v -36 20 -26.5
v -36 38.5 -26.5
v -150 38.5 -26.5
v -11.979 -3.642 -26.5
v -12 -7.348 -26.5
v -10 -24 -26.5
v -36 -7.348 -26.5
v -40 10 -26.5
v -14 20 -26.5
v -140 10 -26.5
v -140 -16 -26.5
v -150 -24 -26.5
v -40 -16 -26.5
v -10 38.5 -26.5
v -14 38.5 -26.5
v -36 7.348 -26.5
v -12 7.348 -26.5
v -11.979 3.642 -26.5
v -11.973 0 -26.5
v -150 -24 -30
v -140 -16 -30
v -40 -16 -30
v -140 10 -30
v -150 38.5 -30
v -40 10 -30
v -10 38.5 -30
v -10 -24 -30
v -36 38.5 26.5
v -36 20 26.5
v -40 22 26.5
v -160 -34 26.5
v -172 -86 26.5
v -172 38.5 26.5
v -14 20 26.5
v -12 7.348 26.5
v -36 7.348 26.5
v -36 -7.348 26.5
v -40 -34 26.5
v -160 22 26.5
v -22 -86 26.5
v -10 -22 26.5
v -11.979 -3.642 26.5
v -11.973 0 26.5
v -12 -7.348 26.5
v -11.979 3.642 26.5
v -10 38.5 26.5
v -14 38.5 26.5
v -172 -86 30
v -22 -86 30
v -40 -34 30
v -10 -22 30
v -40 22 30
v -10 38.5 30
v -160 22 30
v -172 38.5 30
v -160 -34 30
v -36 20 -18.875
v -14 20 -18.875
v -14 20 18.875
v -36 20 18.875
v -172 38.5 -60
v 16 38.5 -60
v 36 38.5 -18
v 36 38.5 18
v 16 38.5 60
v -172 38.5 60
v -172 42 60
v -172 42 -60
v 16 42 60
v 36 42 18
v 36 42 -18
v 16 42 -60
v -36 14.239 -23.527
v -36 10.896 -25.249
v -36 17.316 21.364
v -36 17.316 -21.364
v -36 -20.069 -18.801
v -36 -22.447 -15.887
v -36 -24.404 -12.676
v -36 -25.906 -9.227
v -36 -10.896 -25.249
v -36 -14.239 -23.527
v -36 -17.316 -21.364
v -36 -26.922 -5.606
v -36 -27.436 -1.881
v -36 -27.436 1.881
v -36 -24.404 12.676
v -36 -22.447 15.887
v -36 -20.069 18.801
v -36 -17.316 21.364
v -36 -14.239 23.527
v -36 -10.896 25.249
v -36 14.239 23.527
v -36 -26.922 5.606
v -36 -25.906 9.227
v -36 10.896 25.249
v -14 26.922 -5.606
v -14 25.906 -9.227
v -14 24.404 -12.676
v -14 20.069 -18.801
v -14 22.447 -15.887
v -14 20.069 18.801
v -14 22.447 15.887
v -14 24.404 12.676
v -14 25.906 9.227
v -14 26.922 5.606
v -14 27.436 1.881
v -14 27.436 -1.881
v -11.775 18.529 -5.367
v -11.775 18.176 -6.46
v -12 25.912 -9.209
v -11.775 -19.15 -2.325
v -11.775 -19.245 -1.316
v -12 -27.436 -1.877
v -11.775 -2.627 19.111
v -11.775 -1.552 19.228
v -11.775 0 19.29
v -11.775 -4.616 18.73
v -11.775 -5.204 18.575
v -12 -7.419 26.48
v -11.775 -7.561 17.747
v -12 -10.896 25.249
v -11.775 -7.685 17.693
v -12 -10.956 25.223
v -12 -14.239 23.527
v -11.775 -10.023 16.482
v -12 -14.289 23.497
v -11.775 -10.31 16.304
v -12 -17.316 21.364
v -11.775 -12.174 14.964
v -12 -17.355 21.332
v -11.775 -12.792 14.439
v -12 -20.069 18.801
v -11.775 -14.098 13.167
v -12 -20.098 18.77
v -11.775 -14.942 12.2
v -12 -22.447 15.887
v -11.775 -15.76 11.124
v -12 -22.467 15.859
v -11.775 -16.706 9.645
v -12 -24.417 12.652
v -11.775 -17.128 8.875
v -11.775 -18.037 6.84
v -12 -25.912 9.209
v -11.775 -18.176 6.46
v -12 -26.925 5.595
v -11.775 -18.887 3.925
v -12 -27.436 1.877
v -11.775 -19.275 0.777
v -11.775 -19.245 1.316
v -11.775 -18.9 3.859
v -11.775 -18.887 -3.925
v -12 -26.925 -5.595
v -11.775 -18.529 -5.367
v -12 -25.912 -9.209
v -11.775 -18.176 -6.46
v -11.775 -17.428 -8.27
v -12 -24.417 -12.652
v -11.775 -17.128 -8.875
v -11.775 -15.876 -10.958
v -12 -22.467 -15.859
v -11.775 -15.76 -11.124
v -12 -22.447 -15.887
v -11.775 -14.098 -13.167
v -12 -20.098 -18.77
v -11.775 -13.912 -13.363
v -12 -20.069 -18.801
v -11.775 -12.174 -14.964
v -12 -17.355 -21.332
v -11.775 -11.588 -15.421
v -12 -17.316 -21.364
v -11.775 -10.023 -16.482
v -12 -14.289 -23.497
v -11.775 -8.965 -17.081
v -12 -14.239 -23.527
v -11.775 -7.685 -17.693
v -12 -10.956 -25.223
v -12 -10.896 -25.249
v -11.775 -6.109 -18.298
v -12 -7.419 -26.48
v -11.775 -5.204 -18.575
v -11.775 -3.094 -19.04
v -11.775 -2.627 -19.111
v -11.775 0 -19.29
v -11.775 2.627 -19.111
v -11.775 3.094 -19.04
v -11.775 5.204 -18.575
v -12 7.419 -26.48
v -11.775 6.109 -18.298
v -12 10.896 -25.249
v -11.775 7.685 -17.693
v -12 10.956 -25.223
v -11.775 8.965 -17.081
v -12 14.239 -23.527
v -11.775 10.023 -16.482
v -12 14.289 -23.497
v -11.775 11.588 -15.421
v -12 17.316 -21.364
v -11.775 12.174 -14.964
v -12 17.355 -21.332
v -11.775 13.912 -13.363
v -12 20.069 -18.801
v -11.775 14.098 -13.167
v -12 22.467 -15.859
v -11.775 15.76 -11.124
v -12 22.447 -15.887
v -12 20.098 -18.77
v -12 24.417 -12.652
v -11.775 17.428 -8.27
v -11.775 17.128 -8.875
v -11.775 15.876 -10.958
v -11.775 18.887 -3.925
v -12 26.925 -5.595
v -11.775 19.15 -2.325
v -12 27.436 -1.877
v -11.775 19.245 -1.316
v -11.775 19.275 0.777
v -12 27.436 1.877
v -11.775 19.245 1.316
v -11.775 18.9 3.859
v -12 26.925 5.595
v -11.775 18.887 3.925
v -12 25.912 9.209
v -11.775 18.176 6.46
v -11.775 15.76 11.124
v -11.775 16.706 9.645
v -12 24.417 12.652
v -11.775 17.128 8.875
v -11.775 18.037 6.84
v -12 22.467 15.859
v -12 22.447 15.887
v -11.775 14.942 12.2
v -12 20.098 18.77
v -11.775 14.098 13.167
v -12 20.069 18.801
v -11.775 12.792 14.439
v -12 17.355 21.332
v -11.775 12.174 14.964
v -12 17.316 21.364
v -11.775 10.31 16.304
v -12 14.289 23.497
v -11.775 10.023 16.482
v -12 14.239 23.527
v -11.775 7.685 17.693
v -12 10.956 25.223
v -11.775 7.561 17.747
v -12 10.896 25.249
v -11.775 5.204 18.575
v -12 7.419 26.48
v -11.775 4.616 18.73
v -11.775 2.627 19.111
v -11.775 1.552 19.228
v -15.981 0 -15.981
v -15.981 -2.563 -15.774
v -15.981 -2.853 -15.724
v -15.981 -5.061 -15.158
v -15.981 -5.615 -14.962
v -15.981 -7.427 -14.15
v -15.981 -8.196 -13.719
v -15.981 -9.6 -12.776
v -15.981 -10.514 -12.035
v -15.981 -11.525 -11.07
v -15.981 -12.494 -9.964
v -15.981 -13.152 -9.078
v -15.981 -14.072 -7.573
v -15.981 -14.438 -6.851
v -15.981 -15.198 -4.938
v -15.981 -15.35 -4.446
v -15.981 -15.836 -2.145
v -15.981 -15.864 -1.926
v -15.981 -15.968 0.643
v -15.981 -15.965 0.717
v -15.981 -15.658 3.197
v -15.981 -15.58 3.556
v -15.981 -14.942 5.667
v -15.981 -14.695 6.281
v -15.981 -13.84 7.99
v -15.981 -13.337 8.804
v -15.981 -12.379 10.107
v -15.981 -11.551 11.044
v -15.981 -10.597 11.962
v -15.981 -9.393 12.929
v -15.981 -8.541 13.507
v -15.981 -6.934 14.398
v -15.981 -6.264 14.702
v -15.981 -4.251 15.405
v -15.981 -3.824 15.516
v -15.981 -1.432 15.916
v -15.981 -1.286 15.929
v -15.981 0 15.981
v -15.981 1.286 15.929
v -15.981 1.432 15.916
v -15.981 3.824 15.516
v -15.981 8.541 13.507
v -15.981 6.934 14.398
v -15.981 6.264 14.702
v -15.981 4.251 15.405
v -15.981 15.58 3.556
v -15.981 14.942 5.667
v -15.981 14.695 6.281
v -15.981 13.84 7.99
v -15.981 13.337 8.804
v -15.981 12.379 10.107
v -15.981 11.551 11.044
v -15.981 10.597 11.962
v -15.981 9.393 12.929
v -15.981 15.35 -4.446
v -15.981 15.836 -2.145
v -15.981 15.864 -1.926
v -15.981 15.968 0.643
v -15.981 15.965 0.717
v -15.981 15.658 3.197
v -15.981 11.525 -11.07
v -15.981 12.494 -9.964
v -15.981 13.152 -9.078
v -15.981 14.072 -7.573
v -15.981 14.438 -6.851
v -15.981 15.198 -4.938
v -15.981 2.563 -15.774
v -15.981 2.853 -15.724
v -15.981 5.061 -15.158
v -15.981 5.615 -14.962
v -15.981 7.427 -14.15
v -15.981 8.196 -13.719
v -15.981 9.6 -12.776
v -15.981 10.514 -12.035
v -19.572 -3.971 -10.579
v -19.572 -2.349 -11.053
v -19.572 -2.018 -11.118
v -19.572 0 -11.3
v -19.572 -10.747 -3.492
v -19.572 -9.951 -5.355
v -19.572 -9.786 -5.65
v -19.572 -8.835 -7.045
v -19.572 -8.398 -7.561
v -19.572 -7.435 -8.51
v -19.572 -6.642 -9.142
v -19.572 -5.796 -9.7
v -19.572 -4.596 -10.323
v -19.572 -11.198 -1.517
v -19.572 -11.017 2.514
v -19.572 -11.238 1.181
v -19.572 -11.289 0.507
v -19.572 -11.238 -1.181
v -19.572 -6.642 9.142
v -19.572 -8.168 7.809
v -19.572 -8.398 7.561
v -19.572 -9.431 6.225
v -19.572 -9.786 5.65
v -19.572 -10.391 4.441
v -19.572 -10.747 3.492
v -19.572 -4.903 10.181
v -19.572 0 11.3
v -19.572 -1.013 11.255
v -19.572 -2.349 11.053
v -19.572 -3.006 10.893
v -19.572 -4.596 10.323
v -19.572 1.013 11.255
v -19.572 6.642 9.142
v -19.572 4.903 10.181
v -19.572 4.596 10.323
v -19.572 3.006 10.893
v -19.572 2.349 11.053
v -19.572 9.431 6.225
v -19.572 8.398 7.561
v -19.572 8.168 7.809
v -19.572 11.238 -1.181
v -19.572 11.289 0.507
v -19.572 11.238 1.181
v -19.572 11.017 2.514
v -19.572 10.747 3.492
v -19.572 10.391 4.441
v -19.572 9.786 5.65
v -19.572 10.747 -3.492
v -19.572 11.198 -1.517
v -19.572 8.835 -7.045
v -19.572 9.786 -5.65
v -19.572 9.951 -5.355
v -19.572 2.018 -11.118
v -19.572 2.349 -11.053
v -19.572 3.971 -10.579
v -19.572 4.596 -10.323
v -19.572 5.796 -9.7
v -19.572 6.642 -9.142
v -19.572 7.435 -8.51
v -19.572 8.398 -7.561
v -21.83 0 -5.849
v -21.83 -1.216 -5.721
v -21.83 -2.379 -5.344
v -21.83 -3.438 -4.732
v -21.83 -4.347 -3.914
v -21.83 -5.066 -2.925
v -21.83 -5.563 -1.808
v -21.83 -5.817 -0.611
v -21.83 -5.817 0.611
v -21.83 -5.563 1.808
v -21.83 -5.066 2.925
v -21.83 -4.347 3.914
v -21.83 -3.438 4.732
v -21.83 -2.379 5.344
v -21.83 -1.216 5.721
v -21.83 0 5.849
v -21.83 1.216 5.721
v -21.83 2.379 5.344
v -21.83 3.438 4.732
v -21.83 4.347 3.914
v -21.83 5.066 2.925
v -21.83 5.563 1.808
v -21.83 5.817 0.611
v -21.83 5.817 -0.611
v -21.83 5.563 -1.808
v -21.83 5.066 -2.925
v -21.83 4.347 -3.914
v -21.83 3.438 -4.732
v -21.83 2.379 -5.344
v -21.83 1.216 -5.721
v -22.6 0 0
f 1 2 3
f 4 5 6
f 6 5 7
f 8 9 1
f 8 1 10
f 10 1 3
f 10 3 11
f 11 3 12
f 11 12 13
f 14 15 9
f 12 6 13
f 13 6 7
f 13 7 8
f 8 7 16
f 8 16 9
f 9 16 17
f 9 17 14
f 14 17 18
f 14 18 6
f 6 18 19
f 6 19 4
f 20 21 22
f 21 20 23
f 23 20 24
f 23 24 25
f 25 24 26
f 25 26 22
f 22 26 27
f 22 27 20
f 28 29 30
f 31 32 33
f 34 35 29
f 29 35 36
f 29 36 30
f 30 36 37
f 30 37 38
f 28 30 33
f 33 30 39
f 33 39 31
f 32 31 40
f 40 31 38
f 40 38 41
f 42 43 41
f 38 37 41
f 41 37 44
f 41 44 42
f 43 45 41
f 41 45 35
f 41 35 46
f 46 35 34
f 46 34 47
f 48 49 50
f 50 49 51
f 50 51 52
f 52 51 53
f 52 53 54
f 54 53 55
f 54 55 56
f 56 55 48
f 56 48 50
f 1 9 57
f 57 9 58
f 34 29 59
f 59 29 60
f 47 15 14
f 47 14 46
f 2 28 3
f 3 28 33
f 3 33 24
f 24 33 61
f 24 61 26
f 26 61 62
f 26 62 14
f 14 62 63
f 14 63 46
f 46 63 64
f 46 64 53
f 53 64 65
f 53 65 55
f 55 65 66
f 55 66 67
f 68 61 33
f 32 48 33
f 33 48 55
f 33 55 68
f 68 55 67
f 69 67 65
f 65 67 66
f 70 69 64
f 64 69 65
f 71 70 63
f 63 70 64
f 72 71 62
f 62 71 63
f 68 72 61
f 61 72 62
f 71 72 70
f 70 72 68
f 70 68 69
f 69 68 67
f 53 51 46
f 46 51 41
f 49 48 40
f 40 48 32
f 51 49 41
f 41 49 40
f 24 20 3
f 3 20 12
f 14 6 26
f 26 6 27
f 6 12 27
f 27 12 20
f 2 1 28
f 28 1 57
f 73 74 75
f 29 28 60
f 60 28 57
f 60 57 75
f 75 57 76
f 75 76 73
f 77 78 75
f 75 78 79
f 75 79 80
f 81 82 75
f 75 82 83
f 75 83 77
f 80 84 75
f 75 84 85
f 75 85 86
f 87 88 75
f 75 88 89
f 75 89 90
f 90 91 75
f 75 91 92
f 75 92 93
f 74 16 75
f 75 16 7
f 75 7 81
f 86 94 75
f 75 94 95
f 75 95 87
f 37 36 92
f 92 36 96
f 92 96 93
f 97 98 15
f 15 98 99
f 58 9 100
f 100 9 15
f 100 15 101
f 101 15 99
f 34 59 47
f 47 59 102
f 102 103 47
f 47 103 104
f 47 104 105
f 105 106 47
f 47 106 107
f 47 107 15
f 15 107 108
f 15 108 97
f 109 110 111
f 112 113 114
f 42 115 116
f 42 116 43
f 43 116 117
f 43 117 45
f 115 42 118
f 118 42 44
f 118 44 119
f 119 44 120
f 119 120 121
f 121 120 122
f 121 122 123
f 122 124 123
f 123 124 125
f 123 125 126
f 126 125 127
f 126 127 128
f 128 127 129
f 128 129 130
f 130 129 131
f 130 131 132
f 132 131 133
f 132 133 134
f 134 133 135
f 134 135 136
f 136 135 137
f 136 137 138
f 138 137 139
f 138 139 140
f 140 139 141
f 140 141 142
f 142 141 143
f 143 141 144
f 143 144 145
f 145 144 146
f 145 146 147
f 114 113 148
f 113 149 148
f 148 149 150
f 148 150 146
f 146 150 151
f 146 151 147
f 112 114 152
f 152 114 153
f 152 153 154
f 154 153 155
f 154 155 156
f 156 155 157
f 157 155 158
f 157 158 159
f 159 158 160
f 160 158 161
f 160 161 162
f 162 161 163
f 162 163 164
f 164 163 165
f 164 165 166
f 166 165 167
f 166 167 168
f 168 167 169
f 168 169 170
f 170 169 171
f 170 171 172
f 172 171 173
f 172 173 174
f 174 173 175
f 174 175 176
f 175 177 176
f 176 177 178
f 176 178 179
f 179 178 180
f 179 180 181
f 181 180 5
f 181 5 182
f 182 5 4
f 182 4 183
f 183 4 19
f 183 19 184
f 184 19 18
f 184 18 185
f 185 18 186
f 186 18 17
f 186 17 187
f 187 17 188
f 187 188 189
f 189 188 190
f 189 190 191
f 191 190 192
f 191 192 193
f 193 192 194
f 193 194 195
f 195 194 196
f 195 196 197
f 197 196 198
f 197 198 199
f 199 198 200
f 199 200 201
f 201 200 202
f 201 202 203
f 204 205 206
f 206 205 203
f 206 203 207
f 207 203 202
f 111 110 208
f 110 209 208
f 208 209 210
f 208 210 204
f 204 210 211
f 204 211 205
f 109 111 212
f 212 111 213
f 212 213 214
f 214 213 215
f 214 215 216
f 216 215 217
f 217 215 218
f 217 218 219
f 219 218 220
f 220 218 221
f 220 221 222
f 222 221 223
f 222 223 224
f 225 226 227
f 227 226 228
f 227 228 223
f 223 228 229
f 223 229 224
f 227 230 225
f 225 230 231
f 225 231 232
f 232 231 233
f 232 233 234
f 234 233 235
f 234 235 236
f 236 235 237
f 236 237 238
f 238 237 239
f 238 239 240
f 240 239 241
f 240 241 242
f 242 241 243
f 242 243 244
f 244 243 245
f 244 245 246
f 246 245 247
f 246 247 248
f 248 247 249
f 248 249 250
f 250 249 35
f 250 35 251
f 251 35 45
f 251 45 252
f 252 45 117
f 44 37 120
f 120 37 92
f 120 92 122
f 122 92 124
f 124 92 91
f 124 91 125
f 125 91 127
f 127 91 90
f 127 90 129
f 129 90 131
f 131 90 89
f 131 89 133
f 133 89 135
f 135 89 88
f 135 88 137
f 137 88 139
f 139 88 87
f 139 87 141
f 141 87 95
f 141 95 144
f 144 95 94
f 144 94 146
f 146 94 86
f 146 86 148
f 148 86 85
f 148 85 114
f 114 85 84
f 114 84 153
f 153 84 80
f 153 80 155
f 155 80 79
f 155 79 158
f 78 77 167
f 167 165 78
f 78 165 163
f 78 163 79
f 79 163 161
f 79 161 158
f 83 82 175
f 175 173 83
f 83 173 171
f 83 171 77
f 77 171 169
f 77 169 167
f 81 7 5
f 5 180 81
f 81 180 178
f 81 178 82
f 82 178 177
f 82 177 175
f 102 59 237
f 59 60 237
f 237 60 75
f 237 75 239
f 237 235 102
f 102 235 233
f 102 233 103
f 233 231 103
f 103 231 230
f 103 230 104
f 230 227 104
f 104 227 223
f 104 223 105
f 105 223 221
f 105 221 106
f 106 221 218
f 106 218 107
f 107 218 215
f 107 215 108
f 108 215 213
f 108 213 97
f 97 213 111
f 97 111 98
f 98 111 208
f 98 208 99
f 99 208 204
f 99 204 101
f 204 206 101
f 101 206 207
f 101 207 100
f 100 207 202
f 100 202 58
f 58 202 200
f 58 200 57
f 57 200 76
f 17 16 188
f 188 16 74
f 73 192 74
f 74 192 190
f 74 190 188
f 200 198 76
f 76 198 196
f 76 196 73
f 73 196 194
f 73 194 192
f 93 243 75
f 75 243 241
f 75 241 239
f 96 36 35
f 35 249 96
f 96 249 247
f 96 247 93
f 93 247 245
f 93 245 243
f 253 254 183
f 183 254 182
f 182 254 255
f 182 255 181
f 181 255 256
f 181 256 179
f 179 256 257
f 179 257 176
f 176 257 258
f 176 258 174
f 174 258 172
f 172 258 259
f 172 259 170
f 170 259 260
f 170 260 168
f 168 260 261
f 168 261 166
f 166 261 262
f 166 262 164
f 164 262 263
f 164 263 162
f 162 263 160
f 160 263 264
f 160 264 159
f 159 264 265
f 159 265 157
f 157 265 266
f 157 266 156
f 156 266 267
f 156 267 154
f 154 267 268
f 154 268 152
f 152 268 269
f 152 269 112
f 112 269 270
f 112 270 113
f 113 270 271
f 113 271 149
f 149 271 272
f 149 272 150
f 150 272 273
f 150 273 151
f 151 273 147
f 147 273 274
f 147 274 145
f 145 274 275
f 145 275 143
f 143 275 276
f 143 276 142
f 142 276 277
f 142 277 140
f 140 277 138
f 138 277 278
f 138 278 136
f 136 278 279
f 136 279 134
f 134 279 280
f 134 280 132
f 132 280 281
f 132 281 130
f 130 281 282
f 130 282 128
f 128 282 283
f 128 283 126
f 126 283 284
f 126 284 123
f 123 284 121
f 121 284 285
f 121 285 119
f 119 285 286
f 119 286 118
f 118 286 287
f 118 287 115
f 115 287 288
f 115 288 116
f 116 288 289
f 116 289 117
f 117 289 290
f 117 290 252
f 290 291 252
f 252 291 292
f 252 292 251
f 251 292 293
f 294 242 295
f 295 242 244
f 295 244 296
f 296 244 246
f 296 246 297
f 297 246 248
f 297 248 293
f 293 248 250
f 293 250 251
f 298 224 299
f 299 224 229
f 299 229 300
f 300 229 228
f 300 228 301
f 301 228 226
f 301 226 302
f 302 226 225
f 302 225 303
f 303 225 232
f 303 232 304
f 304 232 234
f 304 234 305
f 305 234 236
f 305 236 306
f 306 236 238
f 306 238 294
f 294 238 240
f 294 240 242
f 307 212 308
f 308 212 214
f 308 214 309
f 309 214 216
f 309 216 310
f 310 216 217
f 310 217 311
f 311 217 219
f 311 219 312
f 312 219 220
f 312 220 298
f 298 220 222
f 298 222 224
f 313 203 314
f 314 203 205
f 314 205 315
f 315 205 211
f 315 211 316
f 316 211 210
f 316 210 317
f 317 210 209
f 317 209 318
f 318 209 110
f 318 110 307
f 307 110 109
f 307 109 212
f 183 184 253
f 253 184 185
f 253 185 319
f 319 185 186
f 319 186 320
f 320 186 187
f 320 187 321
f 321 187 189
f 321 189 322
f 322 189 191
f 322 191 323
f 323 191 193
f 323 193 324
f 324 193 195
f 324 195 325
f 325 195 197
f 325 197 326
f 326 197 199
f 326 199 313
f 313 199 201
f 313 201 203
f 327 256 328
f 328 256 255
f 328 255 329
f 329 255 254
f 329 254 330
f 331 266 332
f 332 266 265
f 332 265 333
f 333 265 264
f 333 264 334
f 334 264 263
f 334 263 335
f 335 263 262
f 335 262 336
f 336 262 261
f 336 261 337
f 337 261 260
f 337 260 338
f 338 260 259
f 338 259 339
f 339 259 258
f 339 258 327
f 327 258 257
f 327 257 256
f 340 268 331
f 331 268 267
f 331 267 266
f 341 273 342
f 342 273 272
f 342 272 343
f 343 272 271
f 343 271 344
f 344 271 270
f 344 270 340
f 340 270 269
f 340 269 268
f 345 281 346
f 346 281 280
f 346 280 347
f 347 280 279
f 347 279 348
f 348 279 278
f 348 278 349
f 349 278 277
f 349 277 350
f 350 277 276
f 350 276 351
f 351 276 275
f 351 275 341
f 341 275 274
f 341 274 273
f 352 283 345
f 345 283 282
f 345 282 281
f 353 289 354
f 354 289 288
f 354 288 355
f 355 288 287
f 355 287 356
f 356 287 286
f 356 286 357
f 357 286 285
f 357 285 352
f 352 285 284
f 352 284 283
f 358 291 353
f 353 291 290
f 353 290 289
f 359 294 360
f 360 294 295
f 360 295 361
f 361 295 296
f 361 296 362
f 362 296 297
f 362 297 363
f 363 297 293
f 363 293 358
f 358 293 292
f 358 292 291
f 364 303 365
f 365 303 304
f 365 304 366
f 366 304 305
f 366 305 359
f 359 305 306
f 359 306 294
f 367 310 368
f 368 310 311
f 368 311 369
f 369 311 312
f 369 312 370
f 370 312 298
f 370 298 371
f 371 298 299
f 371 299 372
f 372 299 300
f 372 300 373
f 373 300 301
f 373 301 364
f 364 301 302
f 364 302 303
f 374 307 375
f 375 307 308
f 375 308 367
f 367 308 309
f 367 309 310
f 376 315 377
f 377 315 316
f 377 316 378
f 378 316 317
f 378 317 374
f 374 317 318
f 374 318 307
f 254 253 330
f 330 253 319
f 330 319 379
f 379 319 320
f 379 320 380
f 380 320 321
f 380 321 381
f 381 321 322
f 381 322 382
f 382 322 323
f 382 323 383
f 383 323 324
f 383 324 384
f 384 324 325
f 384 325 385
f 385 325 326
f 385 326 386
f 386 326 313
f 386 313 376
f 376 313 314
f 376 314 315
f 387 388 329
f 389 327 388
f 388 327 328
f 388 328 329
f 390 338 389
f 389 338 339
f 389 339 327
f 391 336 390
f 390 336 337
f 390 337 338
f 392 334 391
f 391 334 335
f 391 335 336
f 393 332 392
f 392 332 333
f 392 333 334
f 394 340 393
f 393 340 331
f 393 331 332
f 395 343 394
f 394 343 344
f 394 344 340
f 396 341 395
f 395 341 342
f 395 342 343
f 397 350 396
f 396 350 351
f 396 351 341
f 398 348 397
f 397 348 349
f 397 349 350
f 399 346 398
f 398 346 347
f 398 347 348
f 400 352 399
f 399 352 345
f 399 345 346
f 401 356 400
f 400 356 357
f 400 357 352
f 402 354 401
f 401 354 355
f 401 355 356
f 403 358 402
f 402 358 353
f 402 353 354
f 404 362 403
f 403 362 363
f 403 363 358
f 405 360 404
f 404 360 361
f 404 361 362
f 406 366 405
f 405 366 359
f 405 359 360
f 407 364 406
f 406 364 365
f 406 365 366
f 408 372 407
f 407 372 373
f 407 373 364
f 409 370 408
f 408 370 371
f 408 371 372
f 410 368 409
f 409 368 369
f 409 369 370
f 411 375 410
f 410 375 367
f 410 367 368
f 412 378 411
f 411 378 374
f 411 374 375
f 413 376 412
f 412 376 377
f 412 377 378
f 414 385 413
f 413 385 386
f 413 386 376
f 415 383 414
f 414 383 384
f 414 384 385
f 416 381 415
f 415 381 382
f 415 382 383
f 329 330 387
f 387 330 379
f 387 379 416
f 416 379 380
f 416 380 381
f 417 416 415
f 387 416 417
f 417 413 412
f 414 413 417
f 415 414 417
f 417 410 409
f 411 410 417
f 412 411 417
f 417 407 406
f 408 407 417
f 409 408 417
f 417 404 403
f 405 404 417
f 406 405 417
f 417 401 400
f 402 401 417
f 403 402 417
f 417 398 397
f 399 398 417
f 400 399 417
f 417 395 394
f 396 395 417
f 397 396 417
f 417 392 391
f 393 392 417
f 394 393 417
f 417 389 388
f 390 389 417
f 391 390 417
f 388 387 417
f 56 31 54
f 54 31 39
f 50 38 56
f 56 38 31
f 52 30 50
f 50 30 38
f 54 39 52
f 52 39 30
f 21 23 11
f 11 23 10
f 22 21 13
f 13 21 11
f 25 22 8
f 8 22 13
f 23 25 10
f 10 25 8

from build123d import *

# Parameters (mm, degrees)
PLACA_SUPERIOR_ACROMION_DEPTH  = 3.5
PLACA_POSTERIOR_ESCAPULA_DEPTH = 3.5
SKETCH3_W                      = 140
SKETCH3_H                      = 64
PLACA_ANTERIOR_DEPTH           = 3.5
SKETCH4_W                      = 22
SKETCH4_H                      = 20
CUELLO_GLENOIDEO_DEPTH         = 54
SKETCH6_W                      = 120
SKETCH6_H                      = 56
VENTANA_POSTERIOR_DEPTH        = 6
SKETCH7_W                      = 100
SKETCH7_H                      = 26
VENTANA_ANTERIOR_DEPTH         = 6


with BuildPart() as part:
    # Sketch1 → Placa_superior_acromion (new body)
    with BuildSketch(Plane(origin=(0, 38.5, 0), x_dir=(1, 0, 0), z_dir=(0, 1, 0))):
        Polygon((-172, -60), (16, -60), (36, -18), (36, 18), (16, 60), (-172, 60), align=None)
    extrude(amount=PLACA_SUPERIOR_ACROMION_DEPTH)

    # Sketch2 → Placa_posterior_escapula (add)
    with BuildSketch(Plane.XY.offset(26.5)):
        Polygon((-172, 40), (-10, 40), (-10, -22), (-22, -86), (-172, -86), align=None)
    extrude(amount=PLACA_POSTERIOR_ESCAPULA_DEPTH)

    # Sketch3 → Placa_anterior (add)
    with BuildSketch(Plane.XY.offset(-30)):
        with Locations((-80, 8)):
            Rectangle(SKETCH3_W, SKETCH3_H)
    extrude(amount=PLACA_ANTERIOR_DEPTH)

    # Sketch4 → Cuello_glenoideo (add)
    with BuildSketch(Plane.XY.offset(-27)):
        with Locations((-25, 30)):
            Rectangle(SKETCH4_W, SKETCH4_H)
    extrude(amount=CUELLO_GLENOIDEO_DEPTH)

    # Sketch5 → Cavidad_glenoidea (revolve)
    with BuildSketch(Plane.XY, mode=Mode.PRIVATE) as cavidad_glenoidea_sk:
        Polygon((-36, 0), (-36, 27.5), (-12, 27.5), (-11.77481768, 19.290248018), (-15.980613255, 15.980613255), (-19.572174126, 11.3), (-21.829923674, 5.849310419), (-22.6, 0), align=None)
    revolve(cavidad_glenoidea_sk.sketch.rotate(Axis((-40, 0, 0), (1, 0, 0)), 90), axis=Axis((-40, 0, 0), (1, 0, 0)))

    # Sketch6 → Ventana_posterior (cut)
    with BuildSketch(Plane.XY.offset(25)):
        with Locations((-100, -6)):
            Rectangle(SKETCH6_W, SKETCH6_H)
    extrude(amount=VENTANA_POSTERIOR_DEPTH, mode=Mode.SUBTRACT)

    # Sketch7 → Ventana_anterior (cut)
    with BuildSketch(Plane.XY.offset(-31)):
        with Locations((-90, -3)):
            Rectangle(SKETCH7_W, SKETCH7_H)
    extrude(amount=VENTANA_ANTERIOR_DEPTH, mode=Mode.SUBTRACT)


solid = part.part
